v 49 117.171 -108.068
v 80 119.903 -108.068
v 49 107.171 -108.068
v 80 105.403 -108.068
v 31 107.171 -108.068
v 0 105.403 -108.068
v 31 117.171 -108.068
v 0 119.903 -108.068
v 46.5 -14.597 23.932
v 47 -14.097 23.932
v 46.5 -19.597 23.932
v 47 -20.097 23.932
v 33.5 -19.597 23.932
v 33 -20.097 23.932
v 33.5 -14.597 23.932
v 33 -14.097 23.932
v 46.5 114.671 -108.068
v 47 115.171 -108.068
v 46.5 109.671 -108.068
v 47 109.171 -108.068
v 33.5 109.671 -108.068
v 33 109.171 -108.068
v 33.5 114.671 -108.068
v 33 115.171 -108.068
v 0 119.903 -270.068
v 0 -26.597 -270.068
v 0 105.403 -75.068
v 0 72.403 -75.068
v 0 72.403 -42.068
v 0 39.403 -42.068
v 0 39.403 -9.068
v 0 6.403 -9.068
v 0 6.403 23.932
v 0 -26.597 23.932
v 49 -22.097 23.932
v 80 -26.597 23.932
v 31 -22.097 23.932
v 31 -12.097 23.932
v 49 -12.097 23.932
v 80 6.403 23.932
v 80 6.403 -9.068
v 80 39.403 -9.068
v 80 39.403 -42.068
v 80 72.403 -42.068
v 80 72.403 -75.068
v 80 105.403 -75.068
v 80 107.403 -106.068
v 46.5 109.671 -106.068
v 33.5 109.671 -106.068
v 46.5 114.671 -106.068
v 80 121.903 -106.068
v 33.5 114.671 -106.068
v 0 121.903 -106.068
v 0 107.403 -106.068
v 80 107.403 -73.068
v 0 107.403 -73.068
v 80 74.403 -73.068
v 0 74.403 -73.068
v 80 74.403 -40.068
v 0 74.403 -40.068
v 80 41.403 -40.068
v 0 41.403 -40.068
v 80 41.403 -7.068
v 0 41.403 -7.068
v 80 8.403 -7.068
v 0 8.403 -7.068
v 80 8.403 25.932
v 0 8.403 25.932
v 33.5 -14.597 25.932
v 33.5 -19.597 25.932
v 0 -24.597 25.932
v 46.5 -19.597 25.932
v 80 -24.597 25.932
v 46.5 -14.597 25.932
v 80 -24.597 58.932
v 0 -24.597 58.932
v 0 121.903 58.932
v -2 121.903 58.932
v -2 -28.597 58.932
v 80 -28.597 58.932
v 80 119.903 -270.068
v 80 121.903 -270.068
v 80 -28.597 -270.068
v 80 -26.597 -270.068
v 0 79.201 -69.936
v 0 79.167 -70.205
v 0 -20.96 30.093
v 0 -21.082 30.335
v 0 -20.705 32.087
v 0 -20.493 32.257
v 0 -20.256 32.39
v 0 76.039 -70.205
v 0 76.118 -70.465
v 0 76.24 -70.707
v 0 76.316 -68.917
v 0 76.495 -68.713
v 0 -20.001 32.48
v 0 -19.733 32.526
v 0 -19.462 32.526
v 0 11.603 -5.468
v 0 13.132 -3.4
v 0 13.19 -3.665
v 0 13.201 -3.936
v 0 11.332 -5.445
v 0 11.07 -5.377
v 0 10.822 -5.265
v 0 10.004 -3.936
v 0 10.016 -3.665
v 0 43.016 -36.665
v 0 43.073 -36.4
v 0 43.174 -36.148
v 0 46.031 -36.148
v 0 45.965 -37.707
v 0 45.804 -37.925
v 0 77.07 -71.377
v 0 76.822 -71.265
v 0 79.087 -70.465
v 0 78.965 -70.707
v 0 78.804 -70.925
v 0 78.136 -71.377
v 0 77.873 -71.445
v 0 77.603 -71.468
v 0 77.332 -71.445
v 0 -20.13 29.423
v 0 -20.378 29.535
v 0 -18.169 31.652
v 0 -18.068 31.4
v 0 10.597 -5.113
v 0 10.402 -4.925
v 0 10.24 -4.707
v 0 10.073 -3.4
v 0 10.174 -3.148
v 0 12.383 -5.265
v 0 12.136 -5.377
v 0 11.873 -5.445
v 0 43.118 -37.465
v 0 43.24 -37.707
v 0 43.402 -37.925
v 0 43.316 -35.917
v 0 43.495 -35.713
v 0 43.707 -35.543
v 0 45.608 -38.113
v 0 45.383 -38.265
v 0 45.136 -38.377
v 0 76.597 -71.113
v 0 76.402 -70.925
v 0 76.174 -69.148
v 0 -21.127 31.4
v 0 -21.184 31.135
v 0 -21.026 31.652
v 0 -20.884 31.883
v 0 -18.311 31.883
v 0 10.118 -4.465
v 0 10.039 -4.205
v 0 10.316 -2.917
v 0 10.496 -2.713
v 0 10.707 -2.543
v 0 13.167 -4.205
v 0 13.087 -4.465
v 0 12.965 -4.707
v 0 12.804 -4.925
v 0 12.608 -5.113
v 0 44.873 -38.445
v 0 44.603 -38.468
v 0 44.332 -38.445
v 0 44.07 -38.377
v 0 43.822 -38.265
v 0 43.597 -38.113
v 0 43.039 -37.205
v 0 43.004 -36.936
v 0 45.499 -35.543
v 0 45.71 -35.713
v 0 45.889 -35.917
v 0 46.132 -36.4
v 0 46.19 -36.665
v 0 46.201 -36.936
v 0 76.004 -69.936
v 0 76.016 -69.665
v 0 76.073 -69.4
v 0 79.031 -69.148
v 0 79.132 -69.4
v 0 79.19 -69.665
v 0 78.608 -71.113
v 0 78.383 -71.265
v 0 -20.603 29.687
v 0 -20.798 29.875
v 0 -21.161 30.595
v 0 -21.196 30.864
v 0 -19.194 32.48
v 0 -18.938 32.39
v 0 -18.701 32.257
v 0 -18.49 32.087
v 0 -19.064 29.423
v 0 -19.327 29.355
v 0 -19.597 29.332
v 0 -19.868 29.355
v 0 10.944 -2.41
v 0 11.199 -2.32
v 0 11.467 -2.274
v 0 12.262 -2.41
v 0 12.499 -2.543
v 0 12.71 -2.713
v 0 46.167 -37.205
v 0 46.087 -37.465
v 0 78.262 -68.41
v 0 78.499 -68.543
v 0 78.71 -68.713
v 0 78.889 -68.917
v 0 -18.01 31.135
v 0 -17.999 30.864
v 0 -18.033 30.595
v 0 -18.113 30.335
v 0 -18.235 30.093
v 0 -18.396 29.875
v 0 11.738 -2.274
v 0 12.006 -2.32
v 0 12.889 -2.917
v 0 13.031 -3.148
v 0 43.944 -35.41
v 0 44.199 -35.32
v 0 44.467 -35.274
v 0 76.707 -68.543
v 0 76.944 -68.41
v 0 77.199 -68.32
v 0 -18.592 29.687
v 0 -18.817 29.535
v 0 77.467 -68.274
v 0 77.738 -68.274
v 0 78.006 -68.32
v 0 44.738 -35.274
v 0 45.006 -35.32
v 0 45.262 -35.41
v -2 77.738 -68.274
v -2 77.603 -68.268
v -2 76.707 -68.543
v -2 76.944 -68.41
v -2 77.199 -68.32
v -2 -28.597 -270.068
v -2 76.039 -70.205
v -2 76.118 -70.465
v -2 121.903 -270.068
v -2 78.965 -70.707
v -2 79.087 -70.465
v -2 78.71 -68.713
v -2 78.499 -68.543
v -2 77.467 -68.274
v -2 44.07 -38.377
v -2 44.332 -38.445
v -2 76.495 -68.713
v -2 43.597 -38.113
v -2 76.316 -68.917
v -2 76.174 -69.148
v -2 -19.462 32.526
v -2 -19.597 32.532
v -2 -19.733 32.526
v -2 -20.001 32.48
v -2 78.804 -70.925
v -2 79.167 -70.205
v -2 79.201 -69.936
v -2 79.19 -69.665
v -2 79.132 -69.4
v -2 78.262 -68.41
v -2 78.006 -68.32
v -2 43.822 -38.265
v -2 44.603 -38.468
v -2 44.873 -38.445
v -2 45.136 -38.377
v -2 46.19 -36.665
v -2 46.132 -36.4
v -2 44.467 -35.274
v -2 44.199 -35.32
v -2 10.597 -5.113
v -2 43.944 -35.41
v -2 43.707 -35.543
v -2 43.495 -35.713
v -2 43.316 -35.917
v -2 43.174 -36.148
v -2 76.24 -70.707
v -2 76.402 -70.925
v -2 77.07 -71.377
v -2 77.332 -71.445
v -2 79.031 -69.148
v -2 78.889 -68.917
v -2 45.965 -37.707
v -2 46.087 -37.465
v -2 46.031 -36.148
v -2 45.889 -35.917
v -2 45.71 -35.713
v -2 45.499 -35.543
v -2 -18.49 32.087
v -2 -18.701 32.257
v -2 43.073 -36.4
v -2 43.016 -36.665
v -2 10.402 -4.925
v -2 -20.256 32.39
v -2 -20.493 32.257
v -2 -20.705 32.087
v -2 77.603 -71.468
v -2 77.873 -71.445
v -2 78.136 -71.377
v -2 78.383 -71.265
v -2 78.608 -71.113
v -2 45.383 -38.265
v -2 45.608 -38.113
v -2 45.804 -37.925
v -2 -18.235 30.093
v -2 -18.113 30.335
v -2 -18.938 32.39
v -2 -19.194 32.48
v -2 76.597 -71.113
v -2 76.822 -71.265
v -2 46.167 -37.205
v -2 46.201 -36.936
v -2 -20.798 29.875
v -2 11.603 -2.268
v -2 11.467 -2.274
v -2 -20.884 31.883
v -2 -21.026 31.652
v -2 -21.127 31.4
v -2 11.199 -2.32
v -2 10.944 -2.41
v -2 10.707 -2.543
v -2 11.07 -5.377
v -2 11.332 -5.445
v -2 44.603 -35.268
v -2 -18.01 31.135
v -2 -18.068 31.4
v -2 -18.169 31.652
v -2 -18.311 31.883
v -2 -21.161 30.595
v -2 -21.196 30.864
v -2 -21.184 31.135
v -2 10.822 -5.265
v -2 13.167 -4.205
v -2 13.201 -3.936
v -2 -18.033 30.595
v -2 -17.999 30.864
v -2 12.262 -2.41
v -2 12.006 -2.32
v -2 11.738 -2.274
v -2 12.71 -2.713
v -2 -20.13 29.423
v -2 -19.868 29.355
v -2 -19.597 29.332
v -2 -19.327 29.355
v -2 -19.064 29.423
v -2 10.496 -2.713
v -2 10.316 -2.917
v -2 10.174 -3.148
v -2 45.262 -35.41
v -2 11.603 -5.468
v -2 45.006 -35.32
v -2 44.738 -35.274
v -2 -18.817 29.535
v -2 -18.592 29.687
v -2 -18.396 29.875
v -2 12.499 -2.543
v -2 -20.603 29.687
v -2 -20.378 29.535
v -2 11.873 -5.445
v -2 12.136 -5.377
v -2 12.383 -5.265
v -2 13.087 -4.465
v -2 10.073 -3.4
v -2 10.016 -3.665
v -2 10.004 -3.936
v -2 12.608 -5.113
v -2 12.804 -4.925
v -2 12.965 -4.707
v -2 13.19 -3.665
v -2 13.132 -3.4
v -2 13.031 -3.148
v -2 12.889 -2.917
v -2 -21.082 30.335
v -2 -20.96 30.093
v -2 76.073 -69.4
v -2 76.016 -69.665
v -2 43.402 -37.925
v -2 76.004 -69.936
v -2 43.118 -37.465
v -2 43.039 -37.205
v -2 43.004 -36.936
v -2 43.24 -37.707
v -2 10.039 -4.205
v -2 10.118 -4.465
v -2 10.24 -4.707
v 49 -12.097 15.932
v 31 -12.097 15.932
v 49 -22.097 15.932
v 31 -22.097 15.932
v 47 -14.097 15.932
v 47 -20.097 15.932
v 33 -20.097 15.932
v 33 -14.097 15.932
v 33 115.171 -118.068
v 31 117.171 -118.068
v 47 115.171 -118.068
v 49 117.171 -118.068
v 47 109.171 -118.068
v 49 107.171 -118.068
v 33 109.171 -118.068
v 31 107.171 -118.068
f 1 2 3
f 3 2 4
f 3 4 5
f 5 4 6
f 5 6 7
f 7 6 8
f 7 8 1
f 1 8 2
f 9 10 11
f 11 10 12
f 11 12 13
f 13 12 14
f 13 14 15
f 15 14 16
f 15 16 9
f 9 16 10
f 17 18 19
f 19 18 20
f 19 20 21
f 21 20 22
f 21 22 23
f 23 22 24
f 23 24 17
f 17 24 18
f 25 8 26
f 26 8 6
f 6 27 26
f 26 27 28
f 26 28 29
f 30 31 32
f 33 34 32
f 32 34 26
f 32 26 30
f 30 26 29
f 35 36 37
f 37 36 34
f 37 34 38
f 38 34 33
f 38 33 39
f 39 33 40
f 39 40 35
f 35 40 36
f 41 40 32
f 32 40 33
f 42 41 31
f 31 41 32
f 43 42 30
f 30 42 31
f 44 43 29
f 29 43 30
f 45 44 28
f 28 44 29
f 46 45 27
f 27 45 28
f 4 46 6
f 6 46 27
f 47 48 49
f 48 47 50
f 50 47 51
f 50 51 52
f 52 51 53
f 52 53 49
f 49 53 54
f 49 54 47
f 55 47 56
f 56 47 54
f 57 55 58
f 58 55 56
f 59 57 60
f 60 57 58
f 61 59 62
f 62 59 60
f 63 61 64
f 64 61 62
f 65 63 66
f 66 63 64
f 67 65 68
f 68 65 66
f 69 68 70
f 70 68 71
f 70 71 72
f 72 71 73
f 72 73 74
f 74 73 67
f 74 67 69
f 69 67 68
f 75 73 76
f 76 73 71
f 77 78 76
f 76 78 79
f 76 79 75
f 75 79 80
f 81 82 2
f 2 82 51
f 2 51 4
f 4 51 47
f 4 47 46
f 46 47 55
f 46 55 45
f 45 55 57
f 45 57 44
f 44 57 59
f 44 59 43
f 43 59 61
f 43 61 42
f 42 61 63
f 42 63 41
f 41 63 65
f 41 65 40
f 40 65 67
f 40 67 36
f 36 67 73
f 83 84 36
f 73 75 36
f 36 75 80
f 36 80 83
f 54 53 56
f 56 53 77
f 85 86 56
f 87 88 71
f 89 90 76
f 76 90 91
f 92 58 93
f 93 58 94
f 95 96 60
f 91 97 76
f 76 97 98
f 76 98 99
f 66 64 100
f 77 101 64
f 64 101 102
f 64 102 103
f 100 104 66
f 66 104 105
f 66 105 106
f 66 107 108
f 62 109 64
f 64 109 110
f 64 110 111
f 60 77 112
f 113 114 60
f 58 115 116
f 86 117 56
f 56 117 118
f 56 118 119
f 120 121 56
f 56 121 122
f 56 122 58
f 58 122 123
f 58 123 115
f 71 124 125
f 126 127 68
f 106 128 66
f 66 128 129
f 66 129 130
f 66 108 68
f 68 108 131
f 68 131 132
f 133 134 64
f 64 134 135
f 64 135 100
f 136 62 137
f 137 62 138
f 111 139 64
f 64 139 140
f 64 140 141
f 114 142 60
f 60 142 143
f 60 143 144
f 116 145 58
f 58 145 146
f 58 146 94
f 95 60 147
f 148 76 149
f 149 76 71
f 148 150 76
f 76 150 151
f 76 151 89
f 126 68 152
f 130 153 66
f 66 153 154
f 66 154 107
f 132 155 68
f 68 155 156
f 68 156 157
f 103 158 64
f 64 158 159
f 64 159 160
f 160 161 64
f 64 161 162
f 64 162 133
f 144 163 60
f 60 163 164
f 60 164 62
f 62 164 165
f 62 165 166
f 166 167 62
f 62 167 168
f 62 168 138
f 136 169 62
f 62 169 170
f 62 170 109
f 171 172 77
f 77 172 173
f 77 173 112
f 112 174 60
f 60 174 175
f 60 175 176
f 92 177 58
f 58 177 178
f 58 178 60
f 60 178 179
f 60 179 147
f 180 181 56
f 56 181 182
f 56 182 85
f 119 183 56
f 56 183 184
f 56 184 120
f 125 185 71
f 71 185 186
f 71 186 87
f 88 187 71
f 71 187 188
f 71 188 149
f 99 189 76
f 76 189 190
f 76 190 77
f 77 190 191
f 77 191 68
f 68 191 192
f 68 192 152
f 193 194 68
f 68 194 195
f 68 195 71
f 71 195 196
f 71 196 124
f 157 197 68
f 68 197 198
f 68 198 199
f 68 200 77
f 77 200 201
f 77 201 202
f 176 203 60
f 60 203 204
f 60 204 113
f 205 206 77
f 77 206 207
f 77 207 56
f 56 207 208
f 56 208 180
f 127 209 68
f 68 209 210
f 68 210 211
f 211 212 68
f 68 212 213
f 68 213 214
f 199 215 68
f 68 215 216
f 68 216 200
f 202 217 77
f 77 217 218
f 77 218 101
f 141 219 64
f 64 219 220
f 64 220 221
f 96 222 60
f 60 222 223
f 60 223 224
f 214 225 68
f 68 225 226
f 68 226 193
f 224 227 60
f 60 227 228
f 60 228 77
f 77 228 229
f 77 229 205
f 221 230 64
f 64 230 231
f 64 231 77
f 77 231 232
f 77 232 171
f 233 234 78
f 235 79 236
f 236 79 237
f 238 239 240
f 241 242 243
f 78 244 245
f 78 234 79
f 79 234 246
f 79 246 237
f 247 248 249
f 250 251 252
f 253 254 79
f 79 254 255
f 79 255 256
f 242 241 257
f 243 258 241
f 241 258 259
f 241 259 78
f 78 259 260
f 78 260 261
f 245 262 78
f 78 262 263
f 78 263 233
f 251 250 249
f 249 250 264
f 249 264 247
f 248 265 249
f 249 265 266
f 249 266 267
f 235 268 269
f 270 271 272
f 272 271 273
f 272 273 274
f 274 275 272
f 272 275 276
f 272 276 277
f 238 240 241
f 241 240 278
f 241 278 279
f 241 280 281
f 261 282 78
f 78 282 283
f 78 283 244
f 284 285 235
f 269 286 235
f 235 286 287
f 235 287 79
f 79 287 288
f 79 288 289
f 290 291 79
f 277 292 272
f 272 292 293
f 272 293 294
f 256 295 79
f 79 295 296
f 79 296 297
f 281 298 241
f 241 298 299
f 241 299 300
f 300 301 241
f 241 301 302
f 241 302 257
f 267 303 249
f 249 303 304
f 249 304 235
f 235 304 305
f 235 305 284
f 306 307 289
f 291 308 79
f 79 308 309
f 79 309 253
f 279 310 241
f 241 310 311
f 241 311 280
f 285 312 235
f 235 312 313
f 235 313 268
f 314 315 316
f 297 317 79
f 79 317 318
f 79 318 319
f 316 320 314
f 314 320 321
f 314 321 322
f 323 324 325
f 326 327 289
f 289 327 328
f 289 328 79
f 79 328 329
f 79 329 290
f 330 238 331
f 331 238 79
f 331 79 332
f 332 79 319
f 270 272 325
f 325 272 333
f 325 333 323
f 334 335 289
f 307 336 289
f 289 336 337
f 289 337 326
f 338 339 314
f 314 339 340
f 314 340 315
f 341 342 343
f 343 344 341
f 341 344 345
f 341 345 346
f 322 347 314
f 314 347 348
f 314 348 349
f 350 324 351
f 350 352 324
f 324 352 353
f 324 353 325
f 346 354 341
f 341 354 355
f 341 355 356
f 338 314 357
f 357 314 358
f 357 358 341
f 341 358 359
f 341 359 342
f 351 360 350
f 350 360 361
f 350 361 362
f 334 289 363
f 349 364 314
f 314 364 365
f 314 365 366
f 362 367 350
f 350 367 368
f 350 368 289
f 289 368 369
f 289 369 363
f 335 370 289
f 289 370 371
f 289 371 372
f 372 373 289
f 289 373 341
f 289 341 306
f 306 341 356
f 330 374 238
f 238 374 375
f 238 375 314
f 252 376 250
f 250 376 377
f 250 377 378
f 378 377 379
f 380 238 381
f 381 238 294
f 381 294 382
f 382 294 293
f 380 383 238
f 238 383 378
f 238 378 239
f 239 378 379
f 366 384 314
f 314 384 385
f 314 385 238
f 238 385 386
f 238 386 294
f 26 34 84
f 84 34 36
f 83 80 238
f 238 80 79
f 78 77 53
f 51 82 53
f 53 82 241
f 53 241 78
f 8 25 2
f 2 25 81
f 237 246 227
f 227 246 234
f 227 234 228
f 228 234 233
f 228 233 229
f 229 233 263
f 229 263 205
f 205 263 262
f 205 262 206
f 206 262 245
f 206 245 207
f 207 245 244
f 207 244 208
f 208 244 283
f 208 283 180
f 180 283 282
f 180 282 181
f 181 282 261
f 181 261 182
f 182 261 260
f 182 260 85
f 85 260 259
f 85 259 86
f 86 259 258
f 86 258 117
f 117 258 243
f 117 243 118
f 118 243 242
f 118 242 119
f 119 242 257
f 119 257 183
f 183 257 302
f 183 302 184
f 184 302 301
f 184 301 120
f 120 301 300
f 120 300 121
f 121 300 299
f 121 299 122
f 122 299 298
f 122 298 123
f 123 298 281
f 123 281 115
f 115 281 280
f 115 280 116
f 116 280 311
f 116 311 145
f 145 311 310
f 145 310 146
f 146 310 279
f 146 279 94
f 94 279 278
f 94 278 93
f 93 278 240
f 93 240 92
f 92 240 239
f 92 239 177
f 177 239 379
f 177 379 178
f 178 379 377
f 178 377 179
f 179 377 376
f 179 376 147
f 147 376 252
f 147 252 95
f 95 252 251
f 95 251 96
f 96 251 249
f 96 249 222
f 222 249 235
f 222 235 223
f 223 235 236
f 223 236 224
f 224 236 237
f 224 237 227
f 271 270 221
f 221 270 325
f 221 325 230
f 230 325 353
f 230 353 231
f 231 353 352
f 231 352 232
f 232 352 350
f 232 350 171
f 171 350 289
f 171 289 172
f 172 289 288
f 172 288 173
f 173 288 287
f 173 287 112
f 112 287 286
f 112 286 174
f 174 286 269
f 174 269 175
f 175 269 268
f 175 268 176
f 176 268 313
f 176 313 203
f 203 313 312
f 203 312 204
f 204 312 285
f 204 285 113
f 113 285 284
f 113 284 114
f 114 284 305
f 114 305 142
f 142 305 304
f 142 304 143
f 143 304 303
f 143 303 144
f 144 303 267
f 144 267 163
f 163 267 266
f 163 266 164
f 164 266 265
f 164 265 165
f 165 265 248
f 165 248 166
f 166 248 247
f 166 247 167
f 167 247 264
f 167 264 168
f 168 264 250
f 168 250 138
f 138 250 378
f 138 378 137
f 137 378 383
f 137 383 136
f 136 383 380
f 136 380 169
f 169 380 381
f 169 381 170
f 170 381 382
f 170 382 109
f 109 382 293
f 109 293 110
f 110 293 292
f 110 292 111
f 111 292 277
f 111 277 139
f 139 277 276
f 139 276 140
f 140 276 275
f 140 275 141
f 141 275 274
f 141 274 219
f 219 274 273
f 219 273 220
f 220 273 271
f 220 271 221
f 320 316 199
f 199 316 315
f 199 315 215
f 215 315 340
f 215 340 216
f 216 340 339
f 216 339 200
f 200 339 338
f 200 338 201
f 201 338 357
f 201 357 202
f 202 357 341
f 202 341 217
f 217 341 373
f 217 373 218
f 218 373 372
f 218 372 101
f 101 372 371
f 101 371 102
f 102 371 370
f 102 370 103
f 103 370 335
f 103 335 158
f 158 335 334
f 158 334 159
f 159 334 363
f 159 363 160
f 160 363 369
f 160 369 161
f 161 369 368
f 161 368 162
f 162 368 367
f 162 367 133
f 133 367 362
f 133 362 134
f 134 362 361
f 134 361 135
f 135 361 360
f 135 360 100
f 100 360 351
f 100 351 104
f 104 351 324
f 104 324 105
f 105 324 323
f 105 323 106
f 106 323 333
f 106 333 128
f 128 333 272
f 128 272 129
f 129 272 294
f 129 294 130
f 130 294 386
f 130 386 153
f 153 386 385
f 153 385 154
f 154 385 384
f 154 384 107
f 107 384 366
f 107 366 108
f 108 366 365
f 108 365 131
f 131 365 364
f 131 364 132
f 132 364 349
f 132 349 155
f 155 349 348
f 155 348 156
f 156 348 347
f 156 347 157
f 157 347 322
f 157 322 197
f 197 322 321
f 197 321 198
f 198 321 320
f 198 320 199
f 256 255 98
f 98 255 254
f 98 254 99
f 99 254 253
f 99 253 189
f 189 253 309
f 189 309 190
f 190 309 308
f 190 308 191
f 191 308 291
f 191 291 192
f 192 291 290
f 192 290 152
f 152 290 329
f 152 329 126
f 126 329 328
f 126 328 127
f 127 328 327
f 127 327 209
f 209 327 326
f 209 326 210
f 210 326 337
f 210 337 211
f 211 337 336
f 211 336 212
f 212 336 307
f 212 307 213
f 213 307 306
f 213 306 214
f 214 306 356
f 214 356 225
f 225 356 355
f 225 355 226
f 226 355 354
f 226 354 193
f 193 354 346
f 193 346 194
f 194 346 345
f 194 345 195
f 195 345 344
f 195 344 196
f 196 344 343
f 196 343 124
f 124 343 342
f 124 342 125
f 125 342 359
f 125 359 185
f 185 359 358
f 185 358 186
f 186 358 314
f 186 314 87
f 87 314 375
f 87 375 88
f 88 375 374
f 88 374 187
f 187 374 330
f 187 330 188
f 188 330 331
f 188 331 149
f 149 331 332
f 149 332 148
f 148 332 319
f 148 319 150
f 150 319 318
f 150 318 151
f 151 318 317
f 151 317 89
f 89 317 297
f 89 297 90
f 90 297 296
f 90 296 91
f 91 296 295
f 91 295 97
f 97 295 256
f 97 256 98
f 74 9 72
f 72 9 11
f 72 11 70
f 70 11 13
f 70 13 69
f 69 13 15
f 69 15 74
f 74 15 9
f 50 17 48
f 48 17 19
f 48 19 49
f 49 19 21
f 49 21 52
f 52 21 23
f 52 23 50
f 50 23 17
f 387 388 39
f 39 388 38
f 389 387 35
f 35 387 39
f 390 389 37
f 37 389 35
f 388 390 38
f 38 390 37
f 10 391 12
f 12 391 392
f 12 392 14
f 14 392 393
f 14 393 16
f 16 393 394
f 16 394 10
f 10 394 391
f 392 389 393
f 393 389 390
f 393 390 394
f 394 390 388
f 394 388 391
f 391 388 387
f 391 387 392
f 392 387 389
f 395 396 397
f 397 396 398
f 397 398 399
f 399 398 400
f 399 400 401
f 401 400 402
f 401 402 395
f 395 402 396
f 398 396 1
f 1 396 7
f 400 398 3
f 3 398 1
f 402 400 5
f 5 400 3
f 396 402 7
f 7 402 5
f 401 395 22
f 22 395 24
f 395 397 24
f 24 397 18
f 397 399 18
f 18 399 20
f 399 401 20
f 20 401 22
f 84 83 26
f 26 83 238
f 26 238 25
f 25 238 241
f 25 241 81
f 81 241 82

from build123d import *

# Parameters (mm, degrees)
BOSS_EXTRUDE1_DEPTH = 80
SKETCH3_W           = 299
SKETCH3_H           = 299
BOSS_EXTRUDE2_DEPTH = 2
SKETCH4_W           = 82
SKETCH4_H           = 299
BOSS_EXTRUDE3_DEPTH = 2
SKETCH6_W           = 299
SKETCH6_H           = 150.5
CUT_EXTRUDE1_DEPTH  = 82
SKETCH7_W           = 132
SKETCH7_H           = 2
BOSS_EXTRUDE5_DEPTH = 80
SKETCH8_R           = 1.6
CUT_EXTRUDE2_DEPTH  = 2
CUT_EXTRUDE3_START  = -134
SKETCH9_W           = 13
SKETCH9_H           = 5
CUT_EXTRUDE3_DEPTH  = 134
SKETCH10_W          = 18
SKETCH10_H          = 10
SKETCH10_W_2        = 14
SKETCH10_H_2        = 6
BOSS_EXTRUDE6_DEPTH = 10
SKETCH11_W          = 18
SKETCH11_H          = 10
SKETCH11_W_2        = 14
SKETCH11_H_2        = 6
BOSS_EXTRUDE7_DEPTH = 10
BOSS_EXTRUDE8_DEPTH = 30


with BuildPart() as part:
    # Sketch1 → Boss-Extrude1 (new body)
    with BuildSketch(Plane(origin=(0, 0, 0), x_dir=(0, 0, -1), z_dir=(1, 0, 0))):
        Polygon((-23.931657395, -26.597399746), (-23.931657395, 6.402600254), (9.068342605, 6.402600254), (9.068342605, 39.402600254), (42.068342605, 39.402600254), (42.068342605, 72.402600254), (75.068342605, 72.402600254), (75.068342605, 105.402600254), (108.068342605, 105.402600254), (108.068342605, 138.402600254), (141.068342605, 138.402600254), (141.068342605, 171.402600254), (174.068342605, 171.402600254), (174.068342605, 204.402600254), (207.068342605, 204.402600254), (207.068342605, 237.402600254), (240.068342605, 237.402600254), (240.068342605, 272.402600254), (238.068342605, 272.402600254), (238.068342605, 239.402600254), (205.068342605, 239.402600254), (205.068342605, 206.402600254), (172.068342605, 206.402600254), (172.068342605, 173.402600254), (139.068342605, 173.402600254), (139.068342605, 140.402600254), (106.068342605, 140.402600254), (106.068342605, 107.402600254), (73.068342605, 107.402600254), (73.068342605, 74.402600254), (40.068342605, 74.402600254), (40.068342605, 41.402600254), (7.068342605, 41.402600254), (7.068342605, 8.402600254), (-25.931657395, 8.402600254), (-25.931657395, -24.597399746), (-58.931657395, -24.597399746), (-58.931657395, -26.597399746), align=None)
    extrude(amount=BOSS_EXTRUDE1_DEPTH)

    # Sketch3 → Boss-Extrude2 (add)
    with BuildSketch(Plane.ZY):
        with Locations((-90.568342605, 122.902600254)):
            Rectangle(SKETCH3_W, SKETCH3_H)
    extrude(amount=BOSS_EXTRUDE2_DEPTH)

    # Sketch4 → Boss-Extrude3 (add)
    with BuildSketch(Plane.XZ.offset(26.597399746)):
        with Locations((39, -90.568342605)):
            Rectangle(SKETCH4_W, SKETCH4_H)
    extrude(amount=BOSS_EXTRUDE3_DEPTH)

    # Sketch6 → Cut-Extrude1 (cut)
    with BuildSketch(Plane.ZY.offset(2)):
        with Locations((-90.568342605, 197.152600254)):
            Rectangle(SKETCH6_W, SKETCH6_H)
    extrude(amount=-CUT_EXTRUDE1_DEPTH, mode=Mode.SUBTRACT)

    # Sketch7 → Boss-Extrude5 (add)
    with BuildSketch(Plane(origin=(0, 0, 0), x_dir=(0, 0, -1), z_dir=(1, 0, 0))):
        with Locations((174.068342605, 120.902600254)):
            Rectangle(SKETCH7_W, SKETCH7_H)
    extrude(amount=BOSS_EXTRUDE5_DEPTH)

    # Sketch8 → Cut-Extrude2 (cut)
    with BuildSketch(Plane(origin=(0, 0, 0), x_dir=(0, 0, -1), z_dir=(1, 0, 0))):
        with Locations((-30.931657395, -19.597399746)):
            Circle(SKETCH8_R)
        with Locations((3.868342605, 11.602600254)):
            Circle(SKETCH8_R)
        with Locations((36.868342605, 44.602600254)):
            Circle(SKETCH8_R)
        with Locations((69.868342605, 77.602600254)):
            Circle(SKETCH8_R)
    extrude(amount=-CUT_EXTRUDE2_DEPTH, mode=Mode.SUBTRACT)

    # Sketch9 → Cut-Extrude3 (cut)
    with BuildSketch(Plane.XY.offset(25.931657395).offset(CUT_EXTRUDE3_START)):
        with Locations((40, -17.097399746)):
            Rectangle(SKETCH9_W, SKETCH9_H)
        with Locations((40, 112.170516798)):
            Rectangle(SKETCH9_W, SKETCH9_H)
    extrude(amount=CUT_EXTRUDE3_DEPTH, mode=Mode.SUBTRACT)

    # Sketch10 → Boss-Extrude6 (add)
    with BuildSketch(Plane.XY.offset(25.931657395)):
        with Locations((40, -17.097399746)):
            Rectangle(SKETCH10_W, SKETCH10_H)
        with Locations((40, -17.097399746)):
            Rectangle(SKETCH10_W_2, SKETCH10_H_2, mode=Mode.SUBTRACT)
    extrude(amount=-BOSS_EXTRUDE6_DEPTH)

    # Sketch11 → Boss-Extrude7 (add)
    with BuildSketch(Plane(origin=(0, 0, -108.068342605), x_dir=(-1, 0, 0), z_dir=(0, 0, -1))):
        with Locations((-40, 112.170516798)):
            Rectangle(SKETCH11_W, SKETCH11_H)
        with Locations((-40, 112.170516798)):
            Rectangle(SKETCH11_W_2, SKETCH11_H_2, mode=Mode.SUBTRACT)
    extrude(amount=BOSS_EXTRUDE7_DEPTH)

    # Sketch12 → Boss-Extrude8 (add)
    with BuildSketch(Plane(origin=(0, 0, -240.068342605), x_dir=(-1, 0, 0), z_dir=(0, 0, -1))):
        Polygon((2, -28.597399746), (2, 121.902600254), (-80, 121.902600254), (-80, 119.902600254), (0, 119.902600254), (0, -26.597399746), (-80, -26.597399746), (-80, -28.597399746), align=None)
    extrude(amount=BOSS_EXTRUDE8_DEPTH)


solid = part.part
